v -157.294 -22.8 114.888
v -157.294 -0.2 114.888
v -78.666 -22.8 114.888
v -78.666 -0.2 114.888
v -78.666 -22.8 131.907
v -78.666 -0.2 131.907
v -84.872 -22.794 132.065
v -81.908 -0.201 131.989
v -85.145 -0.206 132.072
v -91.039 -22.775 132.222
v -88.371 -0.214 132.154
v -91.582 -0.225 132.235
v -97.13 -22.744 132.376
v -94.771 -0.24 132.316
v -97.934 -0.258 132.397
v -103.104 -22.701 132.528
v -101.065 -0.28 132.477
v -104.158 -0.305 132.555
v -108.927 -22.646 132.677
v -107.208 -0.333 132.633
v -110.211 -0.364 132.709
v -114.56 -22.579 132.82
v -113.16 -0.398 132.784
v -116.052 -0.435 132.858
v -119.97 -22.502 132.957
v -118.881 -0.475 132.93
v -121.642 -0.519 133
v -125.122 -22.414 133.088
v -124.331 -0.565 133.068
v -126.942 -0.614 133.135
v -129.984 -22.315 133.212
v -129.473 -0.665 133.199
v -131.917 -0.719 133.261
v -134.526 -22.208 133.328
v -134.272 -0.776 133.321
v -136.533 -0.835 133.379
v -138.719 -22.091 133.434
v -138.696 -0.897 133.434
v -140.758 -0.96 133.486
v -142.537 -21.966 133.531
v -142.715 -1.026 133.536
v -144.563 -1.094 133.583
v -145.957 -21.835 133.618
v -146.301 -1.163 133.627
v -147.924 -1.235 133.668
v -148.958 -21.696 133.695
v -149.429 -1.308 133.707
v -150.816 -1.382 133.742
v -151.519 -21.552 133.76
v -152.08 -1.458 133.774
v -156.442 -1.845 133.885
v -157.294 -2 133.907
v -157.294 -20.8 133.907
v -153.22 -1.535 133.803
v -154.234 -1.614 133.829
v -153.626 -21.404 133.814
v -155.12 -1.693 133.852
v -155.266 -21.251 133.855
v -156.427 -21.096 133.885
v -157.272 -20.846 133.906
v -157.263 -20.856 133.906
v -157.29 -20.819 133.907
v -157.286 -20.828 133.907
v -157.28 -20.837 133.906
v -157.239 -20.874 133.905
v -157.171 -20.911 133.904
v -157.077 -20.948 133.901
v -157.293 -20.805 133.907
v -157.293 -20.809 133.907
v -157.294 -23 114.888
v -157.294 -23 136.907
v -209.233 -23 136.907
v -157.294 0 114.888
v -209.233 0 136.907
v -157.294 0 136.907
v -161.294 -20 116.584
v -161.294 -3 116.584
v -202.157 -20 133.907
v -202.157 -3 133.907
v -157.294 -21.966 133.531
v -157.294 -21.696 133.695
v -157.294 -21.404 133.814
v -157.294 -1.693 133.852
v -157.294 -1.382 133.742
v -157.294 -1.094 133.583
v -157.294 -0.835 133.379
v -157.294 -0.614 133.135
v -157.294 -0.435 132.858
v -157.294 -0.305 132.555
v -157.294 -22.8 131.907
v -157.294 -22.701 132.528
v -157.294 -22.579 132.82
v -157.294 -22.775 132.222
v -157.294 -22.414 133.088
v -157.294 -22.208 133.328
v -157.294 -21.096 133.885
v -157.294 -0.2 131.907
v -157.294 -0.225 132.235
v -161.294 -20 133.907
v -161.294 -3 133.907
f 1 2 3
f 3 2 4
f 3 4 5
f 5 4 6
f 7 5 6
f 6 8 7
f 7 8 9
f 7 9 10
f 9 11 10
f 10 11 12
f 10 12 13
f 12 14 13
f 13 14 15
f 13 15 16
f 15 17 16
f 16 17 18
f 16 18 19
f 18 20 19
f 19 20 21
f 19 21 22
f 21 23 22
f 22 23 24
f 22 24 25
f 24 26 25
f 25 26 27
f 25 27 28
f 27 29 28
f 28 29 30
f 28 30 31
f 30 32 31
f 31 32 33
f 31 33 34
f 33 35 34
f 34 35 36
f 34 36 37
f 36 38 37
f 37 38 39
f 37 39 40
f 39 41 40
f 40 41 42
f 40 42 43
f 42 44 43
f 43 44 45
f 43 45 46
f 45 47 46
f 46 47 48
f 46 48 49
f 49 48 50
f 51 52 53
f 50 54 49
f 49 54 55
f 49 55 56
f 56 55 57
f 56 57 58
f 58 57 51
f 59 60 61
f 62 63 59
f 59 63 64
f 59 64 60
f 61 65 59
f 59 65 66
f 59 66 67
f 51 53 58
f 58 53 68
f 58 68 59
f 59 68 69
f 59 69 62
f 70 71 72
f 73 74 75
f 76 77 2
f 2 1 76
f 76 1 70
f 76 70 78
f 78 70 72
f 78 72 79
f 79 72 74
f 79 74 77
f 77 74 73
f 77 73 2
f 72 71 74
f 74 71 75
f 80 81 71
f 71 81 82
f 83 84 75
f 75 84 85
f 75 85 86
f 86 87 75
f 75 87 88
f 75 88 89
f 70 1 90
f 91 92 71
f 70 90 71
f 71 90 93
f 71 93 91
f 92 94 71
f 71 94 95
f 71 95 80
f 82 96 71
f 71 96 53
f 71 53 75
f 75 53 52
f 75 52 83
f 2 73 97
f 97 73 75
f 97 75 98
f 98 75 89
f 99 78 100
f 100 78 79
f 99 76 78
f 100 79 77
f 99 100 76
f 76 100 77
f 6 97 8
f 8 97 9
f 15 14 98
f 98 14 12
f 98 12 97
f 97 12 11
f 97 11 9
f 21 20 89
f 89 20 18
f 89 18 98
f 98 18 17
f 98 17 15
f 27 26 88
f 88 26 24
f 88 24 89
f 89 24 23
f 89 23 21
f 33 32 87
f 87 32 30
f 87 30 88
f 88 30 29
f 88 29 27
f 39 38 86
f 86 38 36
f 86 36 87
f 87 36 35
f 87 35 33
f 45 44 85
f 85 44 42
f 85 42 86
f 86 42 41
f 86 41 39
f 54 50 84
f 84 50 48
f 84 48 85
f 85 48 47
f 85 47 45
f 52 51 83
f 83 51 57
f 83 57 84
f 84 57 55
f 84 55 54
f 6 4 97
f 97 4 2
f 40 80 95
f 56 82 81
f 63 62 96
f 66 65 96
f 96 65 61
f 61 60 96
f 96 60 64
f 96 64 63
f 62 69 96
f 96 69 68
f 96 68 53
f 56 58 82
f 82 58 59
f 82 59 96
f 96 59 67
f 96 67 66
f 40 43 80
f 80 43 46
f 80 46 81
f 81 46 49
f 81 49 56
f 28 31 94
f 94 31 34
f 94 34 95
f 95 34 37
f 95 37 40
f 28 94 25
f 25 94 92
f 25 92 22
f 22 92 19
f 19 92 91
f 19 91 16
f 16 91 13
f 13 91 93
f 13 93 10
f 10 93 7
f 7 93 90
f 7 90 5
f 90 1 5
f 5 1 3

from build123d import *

# Parameters (mm, degrees)
BOSS_EXTRU_1_DEPTH              = 23
ENL_V_MAT_EXTRU_2_DEPTH         = 47.939769219
ENL_V_DE_MAT_EXTRU_MINCE1_DEPTH = 78.627208506


with BuildPart() as part:
    # Esquisse3 → Boss.-Extru.1 (new body)
    with BuildSketch(Plane(origin=(0, 0, 0), x_dir=(1, 0, 0), z_dir=(0, 1, 0))):
        Polygon((-209.233275871, -136.906813661), (-157.293506651, -114.887808395), (-78.666298145, -114.887808395), (-78.666298145, -131.906813661), (-157.293506651, -133.906813661), (-157.293506651, -136.906813661), align=None)
    extrude(amount=-BOSS_EXTRU_1_DEPTH)

    # Esquisse5 → Enlèv. mat.-Extru.2 (cut)
    with BuildSketch(Plane.YZ.offset(-209.233275871)):
        Polygon((-20, 133.906813661), (-20, 117.887808395), (-20, 114.887808395), (-3, 114.887808395), (-3, 117.887808395), (-3, 133.906813661), align=None)
    extrude(amount=ENL_V_MAT_EXTRU_2_DEPTH, mode=Mode.SUBTRACT)

    # Esquisse6 → Enlèv. de mat.-Extru.-Mince1 (cut)
    with BuildSketch(Plane(origin=(-78.666298145, 0, 0), x_dir=(0, 0, -1), z_dir=(1, 0, 0))):
        with BuildLine():
            Line((-134.906813661, -20.8), (-134.906813661, -1.954954154))
            ThreePointArc((-134.906813661, -1.954954154), (-133.945165816, 0.010427616), (-131.904561119, 0.8))
            Line((-131.904561119, 0.8), (-113.24643884, 0.8))
            Line((-113.24643884, 0.8), (-113.24643884, -23.8))
            Line((-113.24643884, -23.8), (-131.906813661, -23.8))
            ThreePointArc((-131.906813661, -23.8), (-134.028134004, -22.921320344), (-134.906813661, -20.8))
        make_face()
        with BuildLine():
            Line((-133.906813661, -20.8), (-133.906813661, -2))
            ThreePointArc((-133.906813661, -2), (-133.254765726, -0.713386594), (-131.906813661, -0.2))
            Line((-131.906813661, -0.2), (-114.24643884, -0.2))
            Line((-114.24643884, -0.2), (-114.24643884, -22.8))
            Line((-114.24643884, -22.8), (-131.906813661, -22.8))
            ThreePointArc((-131.906813661, -22.8), (-133.321027223, -22.214213562), (-133.906813661, -20.8))
        make_face(mode=Mode.SUBTRACT)
    extrude(amount=-ENL_V_DE_MAT_EXTRU_MINCE1_DEPTH, mode=Mode.SUBTRACT)


solid = part.part
